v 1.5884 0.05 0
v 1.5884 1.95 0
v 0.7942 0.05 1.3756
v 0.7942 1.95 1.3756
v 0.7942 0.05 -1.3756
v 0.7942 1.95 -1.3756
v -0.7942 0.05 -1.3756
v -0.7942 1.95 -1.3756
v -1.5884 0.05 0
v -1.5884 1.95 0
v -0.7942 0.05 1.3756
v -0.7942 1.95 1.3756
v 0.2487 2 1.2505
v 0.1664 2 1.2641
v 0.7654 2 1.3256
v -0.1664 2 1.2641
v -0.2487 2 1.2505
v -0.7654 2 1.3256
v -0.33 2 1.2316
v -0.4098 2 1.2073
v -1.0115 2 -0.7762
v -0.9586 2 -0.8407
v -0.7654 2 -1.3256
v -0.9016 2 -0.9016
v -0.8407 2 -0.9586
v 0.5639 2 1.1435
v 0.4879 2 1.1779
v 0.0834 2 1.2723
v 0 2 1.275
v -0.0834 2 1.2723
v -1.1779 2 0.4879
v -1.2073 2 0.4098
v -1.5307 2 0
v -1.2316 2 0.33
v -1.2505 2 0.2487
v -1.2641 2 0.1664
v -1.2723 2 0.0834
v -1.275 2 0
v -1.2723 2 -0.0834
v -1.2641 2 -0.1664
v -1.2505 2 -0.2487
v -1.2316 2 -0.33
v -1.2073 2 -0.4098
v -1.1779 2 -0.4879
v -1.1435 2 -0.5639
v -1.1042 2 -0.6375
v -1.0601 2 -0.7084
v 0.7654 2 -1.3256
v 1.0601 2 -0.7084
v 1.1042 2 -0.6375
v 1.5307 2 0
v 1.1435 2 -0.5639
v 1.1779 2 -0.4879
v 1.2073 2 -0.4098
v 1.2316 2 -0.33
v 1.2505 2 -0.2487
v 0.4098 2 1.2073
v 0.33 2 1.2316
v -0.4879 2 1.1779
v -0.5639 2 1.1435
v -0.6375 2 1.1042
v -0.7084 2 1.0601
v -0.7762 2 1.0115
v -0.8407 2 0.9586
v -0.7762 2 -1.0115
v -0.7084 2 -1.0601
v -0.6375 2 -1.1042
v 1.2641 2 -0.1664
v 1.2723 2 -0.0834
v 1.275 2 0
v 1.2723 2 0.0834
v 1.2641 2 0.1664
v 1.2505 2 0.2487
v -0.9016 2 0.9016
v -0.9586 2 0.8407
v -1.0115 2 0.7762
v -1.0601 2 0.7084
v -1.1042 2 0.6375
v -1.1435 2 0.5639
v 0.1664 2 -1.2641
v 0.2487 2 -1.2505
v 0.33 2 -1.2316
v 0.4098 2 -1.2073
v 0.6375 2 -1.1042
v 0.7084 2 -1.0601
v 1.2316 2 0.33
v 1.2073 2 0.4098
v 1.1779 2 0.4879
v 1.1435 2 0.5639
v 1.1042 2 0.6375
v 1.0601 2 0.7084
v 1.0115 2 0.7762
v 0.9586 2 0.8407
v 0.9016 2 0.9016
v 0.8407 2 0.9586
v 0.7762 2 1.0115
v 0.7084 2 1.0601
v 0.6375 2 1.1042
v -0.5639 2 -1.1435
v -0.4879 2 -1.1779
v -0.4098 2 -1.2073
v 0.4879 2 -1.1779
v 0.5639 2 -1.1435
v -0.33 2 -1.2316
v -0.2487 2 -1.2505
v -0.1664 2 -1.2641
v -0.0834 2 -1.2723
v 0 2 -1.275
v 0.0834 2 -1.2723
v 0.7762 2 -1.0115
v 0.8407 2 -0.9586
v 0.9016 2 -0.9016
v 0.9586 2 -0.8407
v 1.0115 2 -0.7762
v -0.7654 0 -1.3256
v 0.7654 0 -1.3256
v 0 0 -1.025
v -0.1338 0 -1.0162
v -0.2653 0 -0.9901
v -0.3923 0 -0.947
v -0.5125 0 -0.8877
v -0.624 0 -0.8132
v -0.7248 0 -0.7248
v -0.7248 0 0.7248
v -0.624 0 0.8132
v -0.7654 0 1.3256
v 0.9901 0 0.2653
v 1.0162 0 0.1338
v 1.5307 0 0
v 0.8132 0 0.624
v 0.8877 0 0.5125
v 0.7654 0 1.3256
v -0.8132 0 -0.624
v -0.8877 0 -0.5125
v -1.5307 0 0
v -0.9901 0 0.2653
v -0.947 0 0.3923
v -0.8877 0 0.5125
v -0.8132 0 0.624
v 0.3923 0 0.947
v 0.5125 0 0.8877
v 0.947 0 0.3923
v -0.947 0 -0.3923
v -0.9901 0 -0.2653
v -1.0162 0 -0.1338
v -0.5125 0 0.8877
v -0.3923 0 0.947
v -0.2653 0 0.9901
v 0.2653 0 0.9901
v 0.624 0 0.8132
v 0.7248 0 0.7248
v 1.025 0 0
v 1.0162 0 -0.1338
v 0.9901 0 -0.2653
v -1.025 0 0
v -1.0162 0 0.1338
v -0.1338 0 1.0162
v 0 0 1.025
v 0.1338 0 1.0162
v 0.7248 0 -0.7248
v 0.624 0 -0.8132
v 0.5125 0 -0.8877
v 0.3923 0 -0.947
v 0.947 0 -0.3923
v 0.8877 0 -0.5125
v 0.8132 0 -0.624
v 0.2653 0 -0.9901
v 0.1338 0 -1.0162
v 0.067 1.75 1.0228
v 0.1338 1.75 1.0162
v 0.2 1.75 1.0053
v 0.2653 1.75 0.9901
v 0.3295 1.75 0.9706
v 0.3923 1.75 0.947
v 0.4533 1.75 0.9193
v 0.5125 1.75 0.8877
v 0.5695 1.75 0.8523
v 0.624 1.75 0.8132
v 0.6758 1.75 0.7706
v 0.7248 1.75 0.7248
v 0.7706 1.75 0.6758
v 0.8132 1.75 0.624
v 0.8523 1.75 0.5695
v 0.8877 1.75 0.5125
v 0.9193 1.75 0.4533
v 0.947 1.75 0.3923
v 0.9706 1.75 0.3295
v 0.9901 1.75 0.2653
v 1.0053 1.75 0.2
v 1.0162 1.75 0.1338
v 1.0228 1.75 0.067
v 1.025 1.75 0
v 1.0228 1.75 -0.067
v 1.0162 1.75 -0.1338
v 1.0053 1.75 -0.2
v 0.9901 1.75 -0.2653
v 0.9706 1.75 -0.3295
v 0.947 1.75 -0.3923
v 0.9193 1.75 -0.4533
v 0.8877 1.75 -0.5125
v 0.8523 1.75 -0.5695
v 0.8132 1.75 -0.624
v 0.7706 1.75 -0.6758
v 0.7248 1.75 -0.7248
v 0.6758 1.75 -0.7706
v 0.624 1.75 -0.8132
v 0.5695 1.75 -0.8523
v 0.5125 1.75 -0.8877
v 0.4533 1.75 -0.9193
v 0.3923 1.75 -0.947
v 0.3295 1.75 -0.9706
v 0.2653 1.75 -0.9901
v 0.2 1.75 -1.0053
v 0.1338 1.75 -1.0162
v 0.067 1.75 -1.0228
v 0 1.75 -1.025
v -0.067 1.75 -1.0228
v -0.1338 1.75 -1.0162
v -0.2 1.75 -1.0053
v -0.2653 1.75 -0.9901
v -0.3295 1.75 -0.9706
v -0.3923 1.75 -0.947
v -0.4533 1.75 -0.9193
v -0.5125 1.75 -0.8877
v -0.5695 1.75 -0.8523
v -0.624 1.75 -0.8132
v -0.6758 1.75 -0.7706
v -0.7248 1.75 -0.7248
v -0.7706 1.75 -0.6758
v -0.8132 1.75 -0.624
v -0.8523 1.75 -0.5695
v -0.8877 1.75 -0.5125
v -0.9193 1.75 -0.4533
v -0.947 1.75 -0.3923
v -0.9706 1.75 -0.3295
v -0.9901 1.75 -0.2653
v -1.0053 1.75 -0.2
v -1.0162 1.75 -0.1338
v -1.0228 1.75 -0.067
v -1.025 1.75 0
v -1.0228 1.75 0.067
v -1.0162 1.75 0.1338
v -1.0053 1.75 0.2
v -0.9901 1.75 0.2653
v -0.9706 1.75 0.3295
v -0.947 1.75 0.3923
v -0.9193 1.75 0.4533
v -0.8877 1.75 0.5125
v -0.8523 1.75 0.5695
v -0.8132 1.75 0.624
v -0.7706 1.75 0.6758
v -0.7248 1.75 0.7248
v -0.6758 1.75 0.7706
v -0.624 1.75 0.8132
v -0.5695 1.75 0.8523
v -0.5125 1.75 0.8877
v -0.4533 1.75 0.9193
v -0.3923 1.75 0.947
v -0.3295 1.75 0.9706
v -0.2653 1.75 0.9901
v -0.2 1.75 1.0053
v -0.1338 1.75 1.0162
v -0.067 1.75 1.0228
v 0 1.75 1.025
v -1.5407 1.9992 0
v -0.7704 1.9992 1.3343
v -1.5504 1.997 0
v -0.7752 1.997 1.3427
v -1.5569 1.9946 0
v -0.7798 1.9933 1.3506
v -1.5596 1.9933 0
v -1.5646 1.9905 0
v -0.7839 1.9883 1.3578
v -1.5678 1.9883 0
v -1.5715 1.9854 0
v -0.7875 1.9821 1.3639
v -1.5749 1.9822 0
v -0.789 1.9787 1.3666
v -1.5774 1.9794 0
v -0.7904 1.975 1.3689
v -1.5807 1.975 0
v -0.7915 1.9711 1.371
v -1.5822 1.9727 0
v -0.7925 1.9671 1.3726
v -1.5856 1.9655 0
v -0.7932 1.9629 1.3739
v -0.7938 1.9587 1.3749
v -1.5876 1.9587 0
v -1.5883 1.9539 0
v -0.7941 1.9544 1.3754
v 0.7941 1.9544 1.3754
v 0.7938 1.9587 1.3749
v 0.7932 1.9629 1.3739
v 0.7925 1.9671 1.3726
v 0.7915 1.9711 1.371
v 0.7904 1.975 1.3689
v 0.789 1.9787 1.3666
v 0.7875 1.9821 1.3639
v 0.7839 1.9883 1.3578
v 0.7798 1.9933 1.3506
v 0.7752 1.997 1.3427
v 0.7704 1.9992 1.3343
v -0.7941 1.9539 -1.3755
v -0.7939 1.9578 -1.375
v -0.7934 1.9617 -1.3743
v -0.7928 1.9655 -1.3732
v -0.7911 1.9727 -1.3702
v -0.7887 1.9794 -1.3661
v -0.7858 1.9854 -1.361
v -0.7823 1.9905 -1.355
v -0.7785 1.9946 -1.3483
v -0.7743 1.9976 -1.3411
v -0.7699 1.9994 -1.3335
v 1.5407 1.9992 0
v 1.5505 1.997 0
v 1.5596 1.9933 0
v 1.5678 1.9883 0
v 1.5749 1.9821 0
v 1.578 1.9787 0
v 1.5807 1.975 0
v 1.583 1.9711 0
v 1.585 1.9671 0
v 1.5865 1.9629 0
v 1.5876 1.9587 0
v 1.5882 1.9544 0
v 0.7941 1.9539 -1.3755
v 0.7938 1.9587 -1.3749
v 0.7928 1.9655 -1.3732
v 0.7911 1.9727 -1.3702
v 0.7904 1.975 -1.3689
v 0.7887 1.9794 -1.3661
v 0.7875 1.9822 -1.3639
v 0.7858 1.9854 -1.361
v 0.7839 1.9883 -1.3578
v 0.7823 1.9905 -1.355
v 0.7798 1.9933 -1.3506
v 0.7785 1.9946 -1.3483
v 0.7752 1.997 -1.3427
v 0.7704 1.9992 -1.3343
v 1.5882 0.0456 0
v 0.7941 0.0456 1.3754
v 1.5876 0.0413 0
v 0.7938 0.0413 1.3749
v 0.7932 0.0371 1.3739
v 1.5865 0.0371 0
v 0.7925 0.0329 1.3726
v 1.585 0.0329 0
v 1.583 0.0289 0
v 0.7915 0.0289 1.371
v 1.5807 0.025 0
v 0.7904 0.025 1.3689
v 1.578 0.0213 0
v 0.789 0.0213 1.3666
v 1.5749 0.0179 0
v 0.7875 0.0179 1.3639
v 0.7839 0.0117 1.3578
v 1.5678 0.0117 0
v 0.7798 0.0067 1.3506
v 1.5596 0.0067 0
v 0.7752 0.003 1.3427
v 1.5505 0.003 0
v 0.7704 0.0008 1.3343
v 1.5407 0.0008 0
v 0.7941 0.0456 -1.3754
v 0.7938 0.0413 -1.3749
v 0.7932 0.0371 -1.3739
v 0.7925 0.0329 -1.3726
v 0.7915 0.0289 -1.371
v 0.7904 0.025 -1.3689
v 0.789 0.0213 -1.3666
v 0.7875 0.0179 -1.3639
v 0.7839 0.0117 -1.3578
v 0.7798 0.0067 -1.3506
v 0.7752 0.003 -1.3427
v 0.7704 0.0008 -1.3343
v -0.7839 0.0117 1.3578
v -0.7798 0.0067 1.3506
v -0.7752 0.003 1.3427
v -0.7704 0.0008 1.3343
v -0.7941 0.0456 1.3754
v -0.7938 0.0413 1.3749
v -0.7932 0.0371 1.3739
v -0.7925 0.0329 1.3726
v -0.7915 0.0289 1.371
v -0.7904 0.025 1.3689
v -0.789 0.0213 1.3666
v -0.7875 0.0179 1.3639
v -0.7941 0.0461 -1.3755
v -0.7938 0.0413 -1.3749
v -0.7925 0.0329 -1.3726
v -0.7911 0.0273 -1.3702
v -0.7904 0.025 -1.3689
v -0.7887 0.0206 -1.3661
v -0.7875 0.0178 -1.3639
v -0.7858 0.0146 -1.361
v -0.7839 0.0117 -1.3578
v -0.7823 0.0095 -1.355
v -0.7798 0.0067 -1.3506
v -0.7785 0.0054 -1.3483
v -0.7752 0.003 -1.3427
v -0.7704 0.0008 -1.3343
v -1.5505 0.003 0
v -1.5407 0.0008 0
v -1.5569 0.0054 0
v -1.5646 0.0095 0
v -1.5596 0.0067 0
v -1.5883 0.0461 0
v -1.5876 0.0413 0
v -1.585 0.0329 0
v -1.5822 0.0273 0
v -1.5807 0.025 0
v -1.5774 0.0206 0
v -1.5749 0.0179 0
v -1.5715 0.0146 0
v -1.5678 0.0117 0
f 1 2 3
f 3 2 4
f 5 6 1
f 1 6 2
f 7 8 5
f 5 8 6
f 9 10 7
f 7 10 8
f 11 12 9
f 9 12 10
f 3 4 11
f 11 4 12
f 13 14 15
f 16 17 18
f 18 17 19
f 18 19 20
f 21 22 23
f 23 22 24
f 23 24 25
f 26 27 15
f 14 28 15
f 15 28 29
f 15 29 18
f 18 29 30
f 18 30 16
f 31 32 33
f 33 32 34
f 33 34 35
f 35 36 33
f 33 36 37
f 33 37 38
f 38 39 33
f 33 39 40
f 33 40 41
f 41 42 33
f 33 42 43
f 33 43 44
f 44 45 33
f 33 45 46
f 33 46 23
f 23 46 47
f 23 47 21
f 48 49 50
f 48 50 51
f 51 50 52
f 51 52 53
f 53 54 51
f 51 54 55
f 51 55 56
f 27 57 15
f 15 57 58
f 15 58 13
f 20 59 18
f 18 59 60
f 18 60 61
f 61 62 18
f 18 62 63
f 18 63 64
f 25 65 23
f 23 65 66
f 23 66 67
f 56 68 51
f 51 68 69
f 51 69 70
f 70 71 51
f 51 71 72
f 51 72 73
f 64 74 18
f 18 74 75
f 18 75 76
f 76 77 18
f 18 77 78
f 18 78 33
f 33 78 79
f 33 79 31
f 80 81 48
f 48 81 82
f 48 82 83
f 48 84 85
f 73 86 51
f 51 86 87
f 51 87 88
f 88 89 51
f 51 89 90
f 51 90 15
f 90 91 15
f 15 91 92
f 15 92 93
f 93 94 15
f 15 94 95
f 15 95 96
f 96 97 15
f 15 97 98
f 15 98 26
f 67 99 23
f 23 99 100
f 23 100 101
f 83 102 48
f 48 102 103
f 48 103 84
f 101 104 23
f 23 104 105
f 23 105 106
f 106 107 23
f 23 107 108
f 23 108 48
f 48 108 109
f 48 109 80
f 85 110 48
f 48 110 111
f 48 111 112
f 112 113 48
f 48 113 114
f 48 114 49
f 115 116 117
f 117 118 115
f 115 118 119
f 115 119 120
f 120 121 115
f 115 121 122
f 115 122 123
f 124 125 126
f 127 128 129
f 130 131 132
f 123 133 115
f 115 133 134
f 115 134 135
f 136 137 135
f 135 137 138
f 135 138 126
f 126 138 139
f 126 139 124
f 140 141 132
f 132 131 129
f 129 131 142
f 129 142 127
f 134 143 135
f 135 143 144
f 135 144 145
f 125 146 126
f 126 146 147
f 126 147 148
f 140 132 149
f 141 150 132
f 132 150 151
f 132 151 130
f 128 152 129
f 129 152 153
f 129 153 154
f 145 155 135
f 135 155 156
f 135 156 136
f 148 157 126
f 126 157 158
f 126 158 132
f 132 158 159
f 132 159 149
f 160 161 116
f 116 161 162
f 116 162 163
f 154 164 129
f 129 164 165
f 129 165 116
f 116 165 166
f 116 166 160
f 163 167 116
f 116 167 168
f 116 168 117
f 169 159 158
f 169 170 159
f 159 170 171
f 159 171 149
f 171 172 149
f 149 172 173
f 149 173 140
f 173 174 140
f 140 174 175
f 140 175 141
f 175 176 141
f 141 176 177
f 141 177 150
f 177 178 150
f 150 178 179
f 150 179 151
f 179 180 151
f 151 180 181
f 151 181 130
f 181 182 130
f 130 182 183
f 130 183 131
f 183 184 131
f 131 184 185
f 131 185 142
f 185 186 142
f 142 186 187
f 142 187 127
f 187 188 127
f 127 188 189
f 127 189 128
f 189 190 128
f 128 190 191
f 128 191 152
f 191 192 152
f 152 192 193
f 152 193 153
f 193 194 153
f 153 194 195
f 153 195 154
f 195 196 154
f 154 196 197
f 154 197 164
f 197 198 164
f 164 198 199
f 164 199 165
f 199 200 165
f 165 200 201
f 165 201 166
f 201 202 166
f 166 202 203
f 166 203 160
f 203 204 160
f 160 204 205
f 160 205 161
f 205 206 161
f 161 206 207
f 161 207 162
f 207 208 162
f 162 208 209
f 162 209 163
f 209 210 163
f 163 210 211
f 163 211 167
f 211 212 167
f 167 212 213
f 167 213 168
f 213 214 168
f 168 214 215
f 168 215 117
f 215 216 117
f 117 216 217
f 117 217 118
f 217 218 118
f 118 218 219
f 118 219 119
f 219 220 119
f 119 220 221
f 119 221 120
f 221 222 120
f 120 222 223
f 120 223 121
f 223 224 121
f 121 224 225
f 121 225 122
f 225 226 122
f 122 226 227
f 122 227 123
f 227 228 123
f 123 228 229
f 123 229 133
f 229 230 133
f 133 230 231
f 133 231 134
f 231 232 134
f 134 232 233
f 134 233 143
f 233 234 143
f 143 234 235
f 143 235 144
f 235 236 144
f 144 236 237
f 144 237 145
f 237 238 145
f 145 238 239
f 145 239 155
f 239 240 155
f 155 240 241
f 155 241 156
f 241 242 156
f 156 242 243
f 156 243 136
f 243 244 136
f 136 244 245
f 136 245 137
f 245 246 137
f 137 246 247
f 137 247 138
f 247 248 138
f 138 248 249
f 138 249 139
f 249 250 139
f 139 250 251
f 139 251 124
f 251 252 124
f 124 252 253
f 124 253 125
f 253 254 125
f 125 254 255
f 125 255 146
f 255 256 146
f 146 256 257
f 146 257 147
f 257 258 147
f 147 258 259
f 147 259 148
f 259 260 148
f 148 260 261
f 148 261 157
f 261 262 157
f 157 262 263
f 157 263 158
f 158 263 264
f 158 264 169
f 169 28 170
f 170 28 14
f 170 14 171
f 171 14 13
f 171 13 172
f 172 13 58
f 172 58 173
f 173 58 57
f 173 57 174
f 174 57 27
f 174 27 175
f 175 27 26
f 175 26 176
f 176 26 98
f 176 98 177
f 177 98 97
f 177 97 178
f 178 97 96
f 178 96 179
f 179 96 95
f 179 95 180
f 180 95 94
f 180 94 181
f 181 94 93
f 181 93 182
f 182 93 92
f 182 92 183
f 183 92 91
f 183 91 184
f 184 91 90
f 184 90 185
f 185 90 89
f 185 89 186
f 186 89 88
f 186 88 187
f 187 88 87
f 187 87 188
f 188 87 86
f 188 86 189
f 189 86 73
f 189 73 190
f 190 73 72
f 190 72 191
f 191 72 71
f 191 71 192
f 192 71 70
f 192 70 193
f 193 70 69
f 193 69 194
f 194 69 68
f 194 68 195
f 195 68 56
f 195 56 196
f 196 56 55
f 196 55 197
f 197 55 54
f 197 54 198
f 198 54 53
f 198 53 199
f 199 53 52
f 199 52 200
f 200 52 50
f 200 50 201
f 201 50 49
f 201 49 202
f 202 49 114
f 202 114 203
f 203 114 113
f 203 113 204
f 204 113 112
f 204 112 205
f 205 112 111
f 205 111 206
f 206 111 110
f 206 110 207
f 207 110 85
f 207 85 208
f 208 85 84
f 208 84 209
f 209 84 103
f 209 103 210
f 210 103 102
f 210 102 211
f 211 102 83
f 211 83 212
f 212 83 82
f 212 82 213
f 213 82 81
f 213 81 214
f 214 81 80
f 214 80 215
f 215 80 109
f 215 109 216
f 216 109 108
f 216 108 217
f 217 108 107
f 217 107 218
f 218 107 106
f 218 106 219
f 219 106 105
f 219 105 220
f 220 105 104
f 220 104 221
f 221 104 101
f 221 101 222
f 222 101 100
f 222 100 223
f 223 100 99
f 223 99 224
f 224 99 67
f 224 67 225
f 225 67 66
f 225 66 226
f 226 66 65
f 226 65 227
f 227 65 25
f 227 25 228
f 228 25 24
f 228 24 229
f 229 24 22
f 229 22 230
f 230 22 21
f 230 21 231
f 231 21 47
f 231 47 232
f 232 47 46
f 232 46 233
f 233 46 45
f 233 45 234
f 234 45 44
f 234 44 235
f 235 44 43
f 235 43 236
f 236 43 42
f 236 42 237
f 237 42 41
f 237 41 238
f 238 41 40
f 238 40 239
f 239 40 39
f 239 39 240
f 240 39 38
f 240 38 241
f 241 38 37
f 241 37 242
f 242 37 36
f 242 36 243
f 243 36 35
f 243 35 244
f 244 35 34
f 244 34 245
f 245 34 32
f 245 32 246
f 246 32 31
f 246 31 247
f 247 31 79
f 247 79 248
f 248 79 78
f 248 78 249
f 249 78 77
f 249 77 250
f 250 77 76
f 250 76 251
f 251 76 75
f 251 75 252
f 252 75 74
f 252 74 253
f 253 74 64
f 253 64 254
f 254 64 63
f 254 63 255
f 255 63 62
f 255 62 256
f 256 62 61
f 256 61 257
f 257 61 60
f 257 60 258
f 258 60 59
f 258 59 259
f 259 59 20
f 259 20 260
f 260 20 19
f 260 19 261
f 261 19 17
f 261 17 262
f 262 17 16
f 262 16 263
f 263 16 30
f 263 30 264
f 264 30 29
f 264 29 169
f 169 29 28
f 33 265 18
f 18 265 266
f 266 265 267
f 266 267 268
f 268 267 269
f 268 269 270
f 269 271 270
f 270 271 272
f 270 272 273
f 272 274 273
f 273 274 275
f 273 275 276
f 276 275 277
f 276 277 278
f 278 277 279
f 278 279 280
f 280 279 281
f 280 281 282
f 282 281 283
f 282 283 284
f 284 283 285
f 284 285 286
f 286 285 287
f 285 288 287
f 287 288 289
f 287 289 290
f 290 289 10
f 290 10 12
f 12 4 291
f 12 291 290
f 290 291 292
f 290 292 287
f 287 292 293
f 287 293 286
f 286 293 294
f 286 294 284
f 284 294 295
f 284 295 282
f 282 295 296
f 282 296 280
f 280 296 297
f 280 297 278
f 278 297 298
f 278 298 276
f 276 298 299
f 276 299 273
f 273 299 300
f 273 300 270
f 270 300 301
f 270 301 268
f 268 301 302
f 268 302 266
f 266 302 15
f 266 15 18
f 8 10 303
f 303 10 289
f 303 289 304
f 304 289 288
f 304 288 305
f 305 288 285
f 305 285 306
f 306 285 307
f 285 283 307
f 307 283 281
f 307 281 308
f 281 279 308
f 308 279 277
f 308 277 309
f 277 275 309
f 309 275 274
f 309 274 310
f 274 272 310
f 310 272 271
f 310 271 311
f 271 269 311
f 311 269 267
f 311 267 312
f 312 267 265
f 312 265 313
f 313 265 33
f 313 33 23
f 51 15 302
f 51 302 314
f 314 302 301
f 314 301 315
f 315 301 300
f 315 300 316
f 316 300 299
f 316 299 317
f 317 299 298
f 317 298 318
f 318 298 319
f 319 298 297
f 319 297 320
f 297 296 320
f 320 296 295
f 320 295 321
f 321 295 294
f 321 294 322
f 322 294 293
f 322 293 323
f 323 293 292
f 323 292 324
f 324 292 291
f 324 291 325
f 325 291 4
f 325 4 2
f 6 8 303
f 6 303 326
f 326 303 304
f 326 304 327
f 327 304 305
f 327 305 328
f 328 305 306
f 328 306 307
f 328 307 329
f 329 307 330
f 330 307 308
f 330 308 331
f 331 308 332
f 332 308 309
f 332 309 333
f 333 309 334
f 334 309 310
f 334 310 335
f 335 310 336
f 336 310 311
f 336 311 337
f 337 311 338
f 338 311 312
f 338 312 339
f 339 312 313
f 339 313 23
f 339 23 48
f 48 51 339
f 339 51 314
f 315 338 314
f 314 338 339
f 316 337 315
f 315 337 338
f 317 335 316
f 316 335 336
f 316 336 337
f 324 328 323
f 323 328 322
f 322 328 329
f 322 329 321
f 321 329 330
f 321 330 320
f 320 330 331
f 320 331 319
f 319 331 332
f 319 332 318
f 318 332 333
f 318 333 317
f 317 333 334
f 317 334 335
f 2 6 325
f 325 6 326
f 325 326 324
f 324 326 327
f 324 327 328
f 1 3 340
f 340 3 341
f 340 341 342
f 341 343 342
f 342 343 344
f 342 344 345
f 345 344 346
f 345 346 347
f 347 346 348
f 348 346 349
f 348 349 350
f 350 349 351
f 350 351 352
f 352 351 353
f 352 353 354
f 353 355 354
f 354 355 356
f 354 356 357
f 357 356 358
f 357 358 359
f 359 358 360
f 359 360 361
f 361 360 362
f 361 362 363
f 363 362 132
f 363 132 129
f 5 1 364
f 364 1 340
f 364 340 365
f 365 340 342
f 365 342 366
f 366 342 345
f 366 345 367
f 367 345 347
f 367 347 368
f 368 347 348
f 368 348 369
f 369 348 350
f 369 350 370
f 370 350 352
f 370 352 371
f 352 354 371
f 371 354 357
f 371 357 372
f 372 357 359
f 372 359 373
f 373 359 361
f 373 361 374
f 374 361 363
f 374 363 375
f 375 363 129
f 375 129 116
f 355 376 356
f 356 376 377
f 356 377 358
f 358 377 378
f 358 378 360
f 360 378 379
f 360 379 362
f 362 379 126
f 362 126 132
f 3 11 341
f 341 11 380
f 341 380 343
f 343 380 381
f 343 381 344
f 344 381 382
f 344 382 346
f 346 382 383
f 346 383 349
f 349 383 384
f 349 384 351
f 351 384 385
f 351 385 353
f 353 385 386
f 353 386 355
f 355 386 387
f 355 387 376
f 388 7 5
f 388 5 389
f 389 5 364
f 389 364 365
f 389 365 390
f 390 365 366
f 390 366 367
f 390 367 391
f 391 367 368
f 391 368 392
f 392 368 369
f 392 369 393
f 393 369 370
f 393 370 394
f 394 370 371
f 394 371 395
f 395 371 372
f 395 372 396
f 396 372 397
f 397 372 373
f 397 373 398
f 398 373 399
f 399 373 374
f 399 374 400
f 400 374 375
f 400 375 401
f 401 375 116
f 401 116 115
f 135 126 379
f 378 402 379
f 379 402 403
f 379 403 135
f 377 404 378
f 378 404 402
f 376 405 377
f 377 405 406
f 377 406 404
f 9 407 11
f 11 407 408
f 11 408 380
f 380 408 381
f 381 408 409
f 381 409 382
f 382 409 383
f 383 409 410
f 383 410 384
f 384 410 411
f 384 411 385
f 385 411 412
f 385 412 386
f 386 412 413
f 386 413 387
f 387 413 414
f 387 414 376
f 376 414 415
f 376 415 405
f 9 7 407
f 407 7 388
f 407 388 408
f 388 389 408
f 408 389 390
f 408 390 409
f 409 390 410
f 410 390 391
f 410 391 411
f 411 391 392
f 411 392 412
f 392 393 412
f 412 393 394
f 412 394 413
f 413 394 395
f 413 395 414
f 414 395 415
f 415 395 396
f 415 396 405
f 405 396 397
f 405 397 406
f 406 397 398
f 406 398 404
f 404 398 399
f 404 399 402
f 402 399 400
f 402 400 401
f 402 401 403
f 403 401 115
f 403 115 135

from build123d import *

# Parameters (mm, degrees)
BOSS_EXTRUDE5_DEPTH                = 2
M2_5X0_45_TAPPED_HOLE1_D           = 2.05
M2_5X0_45_TAPPED_HOLE1_CSINK_D     = 2.55
M2_5X0_45_TAPPED_HOLE1_CSINK_ANGLE = 90
FILLET1_R                          = 0.05
FILLET2_R                          = 0.05


with BuildPart() as part:
    # Sketch1 → Boss-Extrude5 (new body)
    with BuildSketch(Plane(origin=(0, 0, 0), x_dir=(1, 0, 0), z_dir=(0, 1, 0))):
        Polygon((1.588448583, 0), (0.794224291, 1.375636825), (-0.794224291, 1.375636825), (-1.588448583, 0), (-0.794224291, -1.375636825), (0.794224291, -1.375636825), align=None)
    extrude(amount=BOSS_EXTRUDE5_DEPTH)

    # M2.5x0.45 Tapped Hole1 (through all)
    with Locations(Plane(origin=(0, 2, 0), x_dir=(1, 0, 0), z_dir=(0, 1, 0))):
        with Locations((0, 0)):
            CounterSinkHole(M2_5X0_45_TAPPED_HOLE1_D / 2, M2_5X0_45_TAPPED_HOLE1_CSINK_D / 2, counter_sink_angle=M2_5X0_45_TAPPED_HOLE1_CSINK_ANGLE)

    # Fillet1
    fillet1_edges = [part.edges().sort_by_distance(p)[0] for p in [
        (0, 2, -1.375636825),
        (-1.191336437, 2, -0.687818413),
        (-1.191336437, 2, 0.687818413),
        (0, 2, 1.375636825),
        (1.191336437, 2, 0.687818413),
        (1.191336437, 2, -0.687818413),
    ]]
    fillet(fillet1_edges, radius=FILLET1_R)

    # Fillet2
    fillet2_edges = [part.edges().sort_by_distance(p)[0] for p in [
        (0, 0, 1.375636825),
        (-1.191336437, 0, 0.687818413),
        (-1.191336437, 0, -0.687818413),
        (0, 0, -1.375636825),
        (1.191336437, 0, -0.687818413),
        (1.191336437, 0, 0.687818413),
    ]]
    fillet(fillet2_edges, radius=FILLET2_R)


solid = part.part
